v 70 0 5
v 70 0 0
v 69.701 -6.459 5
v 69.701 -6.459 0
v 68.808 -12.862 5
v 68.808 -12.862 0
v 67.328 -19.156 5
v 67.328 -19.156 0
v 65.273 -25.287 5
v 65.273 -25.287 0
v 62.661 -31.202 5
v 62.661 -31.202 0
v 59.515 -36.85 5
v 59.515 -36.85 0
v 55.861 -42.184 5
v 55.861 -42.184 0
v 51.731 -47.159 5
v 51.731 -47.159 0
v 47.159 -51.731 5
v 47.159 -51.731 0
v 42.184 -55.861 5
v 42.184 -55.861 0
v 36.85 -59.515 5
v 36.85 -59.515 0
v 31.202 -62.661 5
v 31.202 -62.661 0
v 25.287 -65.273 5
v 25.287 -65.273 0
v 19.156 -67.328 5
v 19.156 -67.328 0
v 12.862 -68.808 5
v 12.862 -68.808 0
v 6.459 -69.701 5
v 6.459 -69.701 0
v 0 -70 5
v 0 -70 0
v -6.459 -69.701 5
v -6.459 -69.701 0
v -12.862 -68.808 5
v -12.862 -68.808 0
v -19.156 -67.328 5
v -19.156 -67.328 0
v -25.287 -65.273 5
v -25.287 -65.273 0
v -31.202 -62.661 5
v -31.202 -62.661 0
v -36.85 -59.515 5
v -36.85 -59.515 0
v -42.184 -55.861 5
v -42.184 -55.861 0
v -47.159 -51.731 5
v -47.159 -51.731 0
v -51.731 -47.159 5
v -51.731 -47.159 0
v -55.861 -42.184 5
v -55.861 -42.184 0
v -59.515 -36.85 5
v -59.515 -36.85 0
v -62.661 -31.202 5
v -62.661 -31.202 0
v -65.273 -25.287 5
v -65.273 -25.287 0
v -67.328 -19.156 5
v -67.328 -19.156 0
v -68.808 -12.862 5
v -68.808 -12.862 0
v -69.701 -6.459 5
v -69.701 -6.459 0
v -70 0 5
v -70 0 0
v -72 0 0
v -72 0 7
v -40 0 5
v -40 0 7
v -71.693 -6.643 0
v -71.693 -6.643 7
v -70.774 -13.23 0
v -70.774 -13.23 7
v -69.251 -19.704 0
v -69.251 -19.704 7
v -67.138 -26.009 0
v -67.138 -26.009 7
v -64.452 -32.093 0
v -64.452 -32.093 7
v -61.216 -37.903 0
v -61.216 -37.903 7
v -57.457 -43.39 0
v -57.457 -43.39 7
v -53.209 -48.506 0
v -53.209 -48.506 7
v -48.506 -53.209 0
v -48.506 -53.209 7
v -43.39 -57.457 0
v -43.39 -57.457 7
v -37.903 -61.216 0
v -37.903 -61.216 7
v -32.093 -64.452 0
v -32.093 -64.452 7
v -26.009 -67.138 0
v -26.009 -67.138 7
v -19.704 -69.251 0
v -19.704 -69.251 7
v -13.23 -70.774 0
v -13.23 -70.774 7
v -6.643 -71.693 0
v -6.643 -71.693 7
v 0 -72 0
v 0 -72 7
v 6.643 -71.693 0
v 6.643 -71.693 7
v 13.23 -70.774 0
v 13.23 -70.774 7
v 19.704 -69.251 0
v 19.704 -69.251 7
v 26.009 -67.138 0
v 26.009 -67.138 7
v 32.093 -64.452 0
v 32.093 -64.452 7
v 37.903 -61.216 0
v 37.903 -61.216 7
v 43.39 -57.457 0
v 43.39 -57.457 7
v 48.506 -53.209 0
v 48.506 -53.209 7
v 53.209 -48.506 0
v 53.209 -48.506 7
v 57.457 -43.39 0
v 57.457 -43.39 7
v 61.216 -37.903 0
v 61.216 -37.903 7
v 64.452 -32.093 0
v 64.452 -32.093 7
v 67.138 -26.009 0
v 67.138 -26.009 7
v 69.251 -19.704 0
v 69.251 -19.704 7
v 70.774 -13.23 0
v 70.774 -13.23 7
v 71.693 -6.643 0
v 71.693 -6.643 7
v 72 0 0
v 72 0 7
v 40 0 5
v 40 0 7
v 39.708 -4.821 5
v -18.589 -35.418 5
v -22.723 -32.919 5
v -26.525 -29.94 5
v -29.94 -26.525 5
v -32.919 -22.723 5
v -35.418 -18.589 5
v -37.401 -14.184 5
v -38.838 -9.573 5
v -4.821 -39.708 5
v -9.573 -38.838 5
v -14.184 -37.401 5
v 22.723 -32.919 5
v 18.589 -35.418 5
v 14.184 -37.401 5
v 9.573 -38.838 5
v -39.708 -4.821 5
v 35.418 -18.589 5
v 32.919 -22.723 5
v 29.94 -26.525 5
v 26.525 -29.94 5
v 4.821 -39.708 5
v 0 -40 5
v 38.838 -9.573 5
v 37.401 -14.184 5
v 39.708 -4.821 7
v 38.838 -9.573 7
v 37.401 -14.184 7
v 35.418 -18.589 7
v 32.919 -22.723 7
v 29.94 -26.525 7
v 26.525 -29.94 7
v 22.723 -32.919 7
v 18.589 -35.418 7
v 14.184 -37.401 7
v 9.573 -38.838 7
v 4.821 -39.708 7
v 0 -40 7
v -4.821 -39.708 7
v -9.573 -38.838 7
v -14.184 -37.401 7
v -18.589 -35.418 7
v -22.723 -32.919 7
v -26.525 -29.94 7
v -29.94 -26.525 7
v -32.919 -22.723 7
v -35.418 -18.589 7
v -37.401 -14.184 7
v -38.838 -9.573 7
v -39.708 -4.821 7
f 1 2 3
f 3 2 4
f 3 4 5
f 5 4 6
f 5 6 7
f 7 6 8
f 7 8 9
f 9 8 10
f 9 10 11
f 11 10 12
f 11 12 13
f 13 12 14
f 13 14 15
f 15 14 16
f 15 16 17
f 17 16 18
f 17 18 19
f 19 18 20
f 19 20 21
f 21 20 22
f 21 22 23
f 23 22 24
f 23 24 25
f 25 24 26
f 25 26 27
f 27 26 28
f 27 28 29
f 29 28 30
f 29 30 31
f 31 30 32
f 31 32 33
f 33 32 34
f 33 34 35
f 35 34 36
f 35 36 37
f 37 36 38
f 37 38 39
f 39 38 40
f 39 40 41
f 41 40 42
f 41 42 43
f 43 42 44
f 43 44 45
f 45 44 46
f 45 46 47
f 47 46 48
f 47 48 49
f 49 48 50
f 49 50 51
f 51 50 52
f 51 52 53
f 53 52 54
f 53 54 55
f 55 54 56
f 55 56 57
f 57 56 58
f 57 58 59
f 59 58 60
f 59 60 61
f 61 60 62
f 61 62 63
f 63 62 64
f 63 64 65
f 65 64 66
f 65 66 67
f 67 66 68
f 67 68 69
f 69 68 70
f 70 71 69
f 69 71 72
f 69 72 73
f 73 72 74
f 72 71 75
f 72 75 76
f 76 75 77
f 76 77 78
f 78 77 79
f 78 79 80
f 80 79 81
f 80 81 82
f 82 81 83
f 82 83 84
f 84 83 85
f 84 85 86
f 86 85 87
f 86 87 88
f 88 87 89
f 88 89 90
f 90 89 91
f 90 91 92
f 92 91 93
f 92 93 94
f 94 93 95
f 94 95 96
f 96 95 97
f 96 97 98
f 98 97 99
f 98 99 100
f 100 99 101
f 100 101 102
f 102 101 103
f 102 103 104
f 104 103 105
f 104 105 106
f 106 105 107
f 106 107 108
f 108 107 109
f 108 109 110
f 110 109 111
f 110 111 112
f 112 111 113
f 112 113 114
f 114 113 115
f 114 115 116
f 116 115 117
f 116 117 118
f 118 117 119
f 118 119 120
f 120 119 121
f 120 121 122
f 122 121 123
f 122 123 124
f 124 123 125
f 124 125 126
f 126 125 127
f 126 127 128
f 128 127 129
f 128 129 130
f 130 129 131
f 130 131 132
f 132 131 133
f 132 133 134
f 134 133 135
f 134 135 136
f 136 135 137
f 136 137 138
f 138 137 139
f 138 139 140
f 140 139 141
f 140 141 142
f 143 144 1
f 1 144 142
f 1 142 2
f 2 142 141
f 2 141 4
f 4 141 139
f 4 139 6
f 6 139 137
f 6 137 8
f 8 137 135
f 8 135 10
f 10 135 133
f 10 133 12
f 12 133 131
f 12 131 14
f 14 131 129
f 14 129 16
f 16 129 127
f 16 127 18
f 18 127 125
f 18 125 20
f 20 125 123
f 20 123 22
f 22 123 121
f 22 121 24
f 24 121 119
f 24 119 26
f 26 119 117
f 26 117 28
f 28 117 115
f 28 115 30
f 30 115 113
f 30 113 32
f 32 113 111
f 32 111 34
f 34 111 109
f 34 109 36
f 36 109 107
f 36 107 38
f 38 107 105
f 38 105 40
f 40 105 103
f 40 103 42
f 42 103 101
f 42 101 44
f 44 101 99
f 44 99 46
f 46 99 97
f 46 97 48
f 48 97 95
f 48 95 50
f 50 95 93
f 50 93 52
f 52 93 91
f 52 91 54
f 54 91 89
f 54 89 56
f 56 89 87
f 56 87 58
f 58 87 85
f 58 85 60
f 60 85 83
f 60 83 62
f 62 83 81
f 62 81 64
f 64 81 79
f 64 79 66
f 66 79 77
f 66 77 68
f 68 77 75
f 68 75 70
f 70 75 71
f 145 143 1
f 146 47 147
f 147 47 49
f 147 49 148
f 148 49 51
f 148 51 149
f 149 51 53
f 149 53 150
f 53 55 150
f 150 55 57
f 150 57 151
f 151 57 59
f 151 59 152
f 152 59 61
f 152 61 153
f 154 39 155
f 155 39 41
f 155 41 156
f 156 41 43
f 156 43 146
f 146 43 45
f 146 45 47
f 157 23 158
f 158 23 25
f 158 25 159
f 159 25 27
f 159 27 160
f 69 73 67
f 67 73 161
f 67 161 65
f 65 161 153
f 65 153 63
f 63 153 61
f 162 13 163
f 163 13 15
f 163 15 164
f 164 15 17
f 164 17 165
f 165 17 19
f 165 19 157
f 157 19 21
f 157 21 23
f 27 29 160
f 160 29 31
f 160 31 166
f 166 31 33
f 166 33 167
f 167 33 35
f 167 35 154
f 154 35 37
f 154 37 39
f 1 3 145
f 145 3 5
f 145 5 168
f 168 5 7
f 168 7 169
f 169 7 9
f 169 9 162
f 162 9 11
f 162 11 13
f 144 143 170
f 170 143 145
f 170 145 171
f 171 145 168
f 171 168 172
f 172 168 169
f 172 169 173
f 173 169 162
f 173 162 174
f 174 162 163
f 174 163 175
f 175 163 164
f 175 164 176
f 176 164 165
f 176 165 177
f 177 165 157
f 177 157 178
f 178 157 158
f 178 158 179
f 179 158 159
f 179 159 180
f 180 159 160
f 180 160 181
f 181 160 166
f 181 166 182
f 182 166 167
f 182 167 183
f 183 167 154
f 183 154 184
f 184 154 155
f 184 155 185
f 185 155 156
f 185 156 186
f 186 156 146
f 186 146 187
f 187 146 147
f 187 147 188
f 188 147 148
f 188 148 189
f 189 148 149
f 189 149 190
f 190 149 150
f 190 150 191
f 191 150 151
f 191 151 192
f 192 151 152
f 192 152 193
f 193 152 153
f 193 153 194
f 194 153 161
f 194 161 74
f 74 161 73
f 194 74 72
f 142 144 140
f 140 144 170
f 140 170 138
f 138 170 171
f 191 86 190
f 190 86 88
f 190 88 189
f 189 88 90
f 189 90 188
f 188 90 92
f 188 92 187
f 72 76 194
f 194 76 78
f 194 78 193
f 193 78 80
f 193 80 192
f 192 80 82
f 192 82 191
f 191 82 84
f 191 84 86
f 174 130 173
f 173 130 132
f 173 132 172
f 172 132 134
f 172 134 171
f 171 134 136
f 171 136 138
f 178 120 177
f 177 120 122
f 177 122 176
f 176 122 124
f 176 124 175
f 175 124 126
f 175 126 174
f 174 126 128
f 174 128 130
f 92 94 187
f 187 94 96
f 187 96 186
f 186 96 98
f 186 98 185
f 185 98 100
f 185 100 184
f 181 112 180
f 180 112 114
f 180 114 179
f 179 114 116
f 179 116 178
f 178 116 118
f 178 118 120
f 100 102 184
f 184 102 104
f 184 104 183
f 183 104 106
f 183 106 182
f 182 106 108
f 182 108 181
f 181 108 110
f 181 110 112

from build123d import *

# Parameters (mm, degrees)
BOSS_EXTRUDE1_DEPTH = 5
BOSS_EXTRUDE2_DEPTH = 2


with BuildPart() as part:
    # Sketch1 → Boss-Extrude1 (new body)
    with BuildSketch(Plane.XY):
        with BuildLine():
            Line((72, 0), (70, 0))
            ThreePointArc((70, 0), (0, -70), (-70, 0))
            Line((-70, 0), (-72, 0))
            ThreePointArc((-72, 0), (0, -72), (72, 0))
        make_face()
    extrude(amount=BOSS_EXTRUDE1_DEPTH)

    # Sketch2 → Boss-Extrude2 (add)
    with BuildSketch(Plane.XY.offset(5)):
        with BuildLine():
            Line((72, 0), (70, 0))
            ThreePointArc((70, 0), (0, -70), (-70, 0))
            Line((-70, 0), (-72, 0))
            ThreePointArc((-72, 0), (0, -72), (72, 0))
        make_face()
        with BuildLine():
            Line((-40, 0), (-70, 0))
            ThreePointArc((-70, 0), (0, -70), (70, 0))
            Line((70, 0), (40, 0))
            ThreePointArc((40, 0), (0, -40), (-40, 0))
        make_face()
    extrude(amount=BOSS_EXTRUDE2_DEPTH)


solid = part.part
